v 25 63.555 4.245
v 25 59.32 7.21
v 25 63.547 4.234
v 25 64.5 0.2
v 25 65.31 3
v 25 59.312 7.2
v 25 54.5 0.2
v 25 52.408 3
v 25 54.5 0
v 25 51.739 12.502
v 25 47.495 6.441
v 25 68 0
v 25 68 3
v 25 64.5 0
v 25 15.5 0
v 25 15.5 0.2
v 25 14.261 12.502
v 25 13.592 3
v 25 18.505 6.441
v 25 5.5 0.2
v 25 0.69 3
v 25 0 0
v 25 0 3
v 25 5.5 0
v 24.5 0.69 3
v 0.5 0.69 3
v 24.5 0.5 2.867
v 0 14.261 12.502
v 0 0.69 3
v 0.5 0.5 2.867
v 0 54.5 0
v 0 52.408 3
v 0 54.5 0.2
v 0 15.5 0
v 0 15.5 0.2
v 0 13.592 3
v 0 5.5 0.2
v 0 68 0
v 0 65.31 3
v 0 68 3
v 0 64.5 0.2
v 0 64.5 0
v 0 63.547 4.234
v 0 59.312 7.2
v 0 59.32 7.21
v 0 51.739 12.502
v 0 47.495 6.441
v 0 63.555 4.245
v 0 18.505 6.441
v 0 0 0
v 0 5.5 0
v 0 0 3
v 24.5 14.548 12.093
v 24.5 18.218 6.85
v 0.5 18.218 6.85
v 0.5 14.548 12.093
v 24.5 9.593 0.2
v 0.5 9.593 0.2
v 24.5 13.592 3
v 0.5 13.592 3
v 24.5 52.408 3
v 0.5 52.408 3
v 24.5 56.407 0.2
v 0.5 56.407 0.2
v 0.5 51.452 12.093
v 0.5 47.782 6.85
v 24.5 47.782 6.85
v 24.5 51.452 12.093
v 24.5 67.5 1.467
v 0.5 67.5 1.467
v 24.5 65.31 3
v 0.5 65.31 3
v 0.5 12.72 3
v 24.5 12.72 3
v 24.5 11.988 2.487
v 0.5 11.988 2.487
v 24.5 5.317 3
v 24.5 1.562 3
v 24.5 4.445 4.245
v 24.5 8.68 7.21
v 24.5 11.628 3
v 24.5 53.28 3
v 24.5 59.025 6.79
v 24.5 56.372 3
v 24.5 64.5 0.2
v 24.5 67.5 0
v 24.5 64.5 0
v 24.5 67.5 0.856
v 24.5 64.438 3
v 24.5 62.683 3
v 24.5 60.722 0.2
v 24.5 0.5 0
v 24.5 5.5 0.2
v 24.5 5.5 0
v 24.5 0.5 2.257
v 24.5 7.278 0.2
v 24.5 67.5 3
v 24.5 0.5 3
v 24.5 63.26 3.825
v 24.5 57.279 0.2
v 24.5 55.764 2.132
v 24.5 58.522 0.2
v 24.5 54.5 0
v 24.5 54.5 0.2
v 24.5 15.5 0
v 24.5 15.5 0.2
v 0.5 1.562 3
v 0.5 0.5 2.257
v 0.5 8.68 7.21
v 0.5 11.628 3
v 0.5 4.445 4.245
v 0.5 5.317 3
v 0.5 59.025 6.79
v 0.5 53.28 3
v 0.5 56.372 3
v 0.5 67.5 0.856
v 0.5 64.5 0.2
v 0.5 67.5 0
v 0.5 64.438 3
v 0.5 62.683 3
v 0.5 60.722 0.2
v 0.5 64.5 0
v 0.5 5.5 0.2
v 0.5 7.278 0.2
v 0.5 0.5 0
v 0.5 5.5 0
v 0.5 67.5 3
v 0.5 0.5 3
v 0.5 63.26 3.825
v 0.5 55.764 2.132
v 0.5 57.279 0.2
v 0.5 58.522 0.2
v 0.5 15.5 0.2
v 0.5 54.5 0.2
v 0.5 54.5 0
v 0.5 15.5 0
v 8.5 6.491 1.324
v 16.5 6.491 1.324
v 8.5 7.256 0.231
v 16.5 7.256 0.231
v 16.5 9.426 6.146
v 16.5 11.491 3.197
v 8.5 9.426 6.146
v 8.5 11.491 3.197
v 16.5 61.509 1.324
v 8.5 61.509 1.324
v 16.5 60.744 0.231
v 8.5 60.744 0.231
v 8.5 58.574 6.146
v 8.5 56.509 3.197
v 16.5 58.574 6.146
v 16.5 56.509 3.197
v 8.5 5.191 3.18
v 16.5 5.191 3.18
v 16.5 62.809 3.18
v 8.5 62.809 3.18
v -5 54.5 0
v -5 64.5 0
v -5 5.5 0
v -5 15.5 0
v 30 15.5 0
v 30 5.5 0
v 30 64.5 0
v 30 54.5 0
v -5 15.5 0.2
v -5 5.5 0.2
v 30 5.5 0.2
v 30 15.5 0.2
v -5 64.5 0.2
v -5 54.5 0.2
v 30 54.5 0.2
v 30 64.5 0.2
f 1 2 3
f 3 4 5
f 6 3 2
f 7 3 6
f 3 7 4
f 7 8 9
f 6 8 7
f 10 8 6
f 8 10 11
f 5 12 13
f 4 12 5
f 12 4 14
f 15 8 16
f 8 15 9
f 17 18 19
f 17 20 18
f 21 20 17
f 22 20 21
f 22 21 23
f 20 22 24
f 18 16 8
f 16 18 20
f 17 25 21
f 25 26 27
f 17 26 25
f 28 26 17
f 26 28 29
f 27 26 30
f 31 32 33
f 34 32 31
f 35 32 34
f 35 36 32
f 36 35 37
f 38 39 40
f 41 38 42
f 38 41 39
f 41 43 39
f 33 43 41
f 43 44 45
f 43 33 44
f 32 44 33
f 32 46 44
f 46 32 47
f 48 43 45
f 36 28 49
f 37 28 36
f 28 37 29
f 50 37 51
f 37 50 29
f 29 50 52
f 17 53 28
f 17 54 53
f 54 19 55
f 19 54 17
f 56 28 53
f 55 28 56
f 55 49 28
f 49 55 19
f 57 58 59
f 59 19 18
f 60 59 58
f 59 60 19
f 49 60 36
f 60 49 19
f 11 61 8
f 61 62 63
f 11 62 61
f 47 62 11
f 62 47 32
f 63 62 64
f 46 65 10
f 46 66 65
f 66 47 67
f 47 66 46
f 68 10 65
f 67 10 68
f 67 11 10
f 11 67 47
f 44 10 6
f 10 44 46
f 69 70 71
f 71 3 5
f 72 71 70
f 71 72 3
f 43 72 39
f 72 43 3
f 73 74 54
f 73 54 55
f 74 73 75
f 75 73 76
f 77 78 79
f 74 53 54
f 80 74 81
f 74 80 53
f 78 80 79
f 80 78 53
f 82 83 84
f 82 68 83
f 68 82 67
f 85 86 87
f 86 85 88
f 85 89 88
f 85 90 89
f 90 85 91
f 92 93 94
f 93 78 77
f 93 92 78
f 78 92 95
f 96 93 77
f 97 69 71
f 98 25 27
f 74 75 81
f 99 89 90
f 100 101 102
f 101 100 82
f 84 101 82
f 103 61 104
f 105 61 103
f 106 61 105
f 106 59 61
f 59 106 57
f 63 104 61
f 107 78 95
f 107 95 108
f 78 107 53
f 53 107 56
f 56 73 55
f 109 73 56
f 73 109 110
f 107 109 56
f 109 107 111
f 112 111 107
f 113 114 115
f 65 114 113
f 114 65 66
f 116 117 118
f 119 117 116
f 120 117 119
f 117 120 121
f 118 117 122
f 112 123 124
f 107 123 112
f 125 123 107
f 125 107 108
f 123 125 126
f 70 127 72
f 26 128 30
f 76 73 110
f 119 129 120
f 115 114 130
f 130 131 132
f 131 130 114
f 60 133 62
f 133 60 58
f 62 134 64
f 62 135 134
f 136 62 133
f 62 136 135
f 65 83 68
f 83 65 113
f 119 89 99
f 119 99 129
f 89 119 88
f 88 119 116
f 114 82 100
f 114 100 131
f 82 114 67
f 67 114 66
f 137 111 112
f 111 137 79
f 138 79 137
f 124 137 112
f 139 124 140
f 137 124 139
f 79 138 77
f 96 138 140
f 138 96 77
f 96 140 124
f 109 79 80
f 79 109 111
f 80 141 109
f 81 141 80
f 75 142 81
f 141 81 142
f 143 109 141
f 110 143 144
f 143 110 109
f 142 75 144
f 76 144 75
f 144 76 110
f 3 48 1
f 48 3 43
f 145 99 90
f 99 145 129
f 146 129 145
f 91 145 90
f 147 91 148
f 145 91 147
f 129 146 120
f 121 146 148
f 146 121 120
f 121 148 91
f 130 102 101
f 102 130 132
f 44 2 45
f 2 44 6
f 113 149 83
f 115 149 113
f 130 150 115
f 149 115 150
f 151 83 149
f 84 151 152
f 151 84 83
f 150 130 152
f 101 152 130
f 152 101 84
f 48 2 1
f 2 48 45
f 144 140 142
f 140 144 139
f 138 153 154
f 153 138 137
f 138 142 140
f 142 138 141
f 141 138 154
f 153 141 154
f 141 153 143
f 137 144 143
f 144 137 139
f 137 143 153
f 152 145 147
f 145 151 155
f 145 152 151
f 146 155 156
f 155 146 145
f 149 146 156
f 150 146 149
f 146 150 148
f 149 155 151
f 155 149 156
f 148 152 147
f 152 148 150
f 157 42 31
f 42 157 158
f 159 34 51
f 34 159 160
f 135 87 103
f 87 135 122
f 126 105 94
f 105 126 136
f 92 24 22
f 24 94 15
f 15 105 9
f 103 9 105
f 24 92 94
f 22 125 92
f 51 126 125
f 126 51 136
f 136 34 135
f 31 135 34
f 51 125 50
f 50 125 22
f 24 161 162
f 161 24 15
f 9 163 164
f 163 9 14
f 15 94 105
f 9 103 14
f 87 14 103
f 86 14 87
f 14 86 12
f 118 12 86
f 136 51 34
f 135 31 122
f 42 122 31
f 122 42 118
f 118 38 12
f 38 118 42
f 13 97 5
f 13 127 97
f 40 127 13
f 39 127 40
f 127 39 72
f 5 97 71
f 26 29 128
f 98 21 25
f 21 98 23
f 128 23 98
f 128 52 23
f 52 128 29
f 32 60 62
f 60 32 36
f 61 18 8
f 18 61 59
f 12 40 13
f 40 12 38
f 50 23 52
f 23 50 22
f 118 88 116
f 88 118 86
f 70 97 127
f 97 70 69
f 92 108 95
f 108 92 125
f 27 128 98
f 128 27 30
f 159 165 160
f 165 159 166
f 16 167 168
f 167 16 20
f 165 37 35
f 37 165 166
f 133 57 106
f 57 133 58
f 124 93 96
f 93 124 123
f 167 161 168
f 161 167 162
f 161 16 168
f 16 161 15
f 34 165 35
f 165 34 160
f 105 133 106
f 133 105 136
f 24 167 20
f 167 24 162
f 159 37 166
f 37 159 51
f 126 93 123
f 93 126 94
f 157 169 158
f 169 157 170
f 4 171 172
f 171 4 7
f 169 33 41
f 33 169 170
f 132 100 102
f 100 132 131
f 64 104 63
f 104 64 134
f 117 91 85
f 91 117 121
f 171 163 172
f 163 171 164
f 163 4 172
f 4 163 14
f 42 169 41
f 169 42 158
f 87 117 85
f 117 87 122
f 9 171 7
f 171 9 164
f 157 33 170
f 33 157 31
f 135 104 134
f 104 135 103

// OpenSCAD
/* Diffuser Lense For A Particular Project (OpenSCAD) */
tol = 2;

/* Camera Chamber */
camchamberw = 27 - tol;
camchamberh = 70 - tol;

/* LED PCB */
holedia = 16 + 2;
thickness=3;

/* Enclosure hole */
enclosurew = 19;

/* Shroud */
shroud_mount_inset = 2;
shroud_mount_height = -2;
shroud_thickness = 1;
shroud_Length = 20;

/* SMD LED */
ledh = 2.76-1.59;
ledw = 4;
ledd = 1.6;

/* SMD LED INSET */
led_mount_inset = 9.5;
led_mount_angle = 180-55;
led_mount_tol=2;
led_mount_thickness=1;
led_mount_height = 4;

module led_mount(rotation, w, d, h)
{
  rotate([rotation,0,0])
    union()
    {
      translate([camchamberw/2 - w/2, -d/2, -h])
        cube([w,d,h+4]);
    }
}


module led_shroud(rotation, w, d, h)
{
  rotate([rotation,0,0])
    union()
    {
      translate([camchamberw/2 - w/2, -d/2, -h])
        cube([w,d,h+4]);
    }
}

/* Grippers*/
translate([-5,led_mount_inset-4,0])
  cube([camchamberw+10,10, 0.2]);
translate([-5,camchamberh-(led_mount_inset+4),0])
  cube([camchamberw+10,10, 0.2]);

intersection()
{
  union()
  {
    linear_extrude(height = thickness) {
       difference() 
      {
         offset(r = 0) 
         {
          square(size = [camchamberw,camchamberh], center = false);
         }
         offset(r = -0.5) 
         {
          square(size = [camchamberw,camchamberh], center = false);
         }
       }
    }
    
    %difference()
    {
      translate([camchamberw/2,camchamberh/2, 0])
        cylinder(thickness,d=holedia+7);
      translate([camchamberw/2,camchamberh/2,-thickness/2])
        cylinder(thickness*2,d=holedia);
    }
   
    // Shroud
    difference()
    {
      union()
      { // Main Body
        translate([0,shroud_mount_height+shroud_mount_inset,shroud_mount_height])
          led_shroud(led_mount_angle,camchamberw,ledd*4+shroud_thickness,shroud_Length);
        translate([0,camchamberh-shroud_mount_inset,shroud_mount_height])
          led_shroud(-led_mount_angle,camchamberw,ledd*4+shroud_thickness,shroud_Length);
      }

      translate([0,shroud_mount_height+shroud_mount_inset,shroud_mount_height])
        led_mount(led_mount_angle,camchamberw-shroud_thickness,ledd*4,shroud_Length+1);
      translate([0,camchamberh-shroud_mount_inset,shroud_mount_height])
        led_mount(-led_mount_angle,camchamberw-shroud_thickness,ledd*4,shroud_Length+1);
      
      //translate([0,0,-1])
      //  cube([camchamberw,camchamberh, thickness]);
     }
    
    // led Holder
    difference()
    {
      union()
      { // Main Body
        // LED Holes
        translate([0,led_mount_inset,led_mount_height])
          led_mount(led_mount_angle,camchamberw,ledd*2+led_mount_tol+led_mount_thickness,ledh);
        translate([0,camchamberh-led_mount_inset,led_mount_height])
          led_mount(-led_mount_angle,camchamberw,ledd*2+led_mount_tol+led_mount_thickness,ledh);
      }

      // LED Holes
      translate([0,led_mount_inset,led_mount_height])
        led_mount(led_mount_angle,ledw+led_mount_tol*2,ledd+led_mount_tol,ledh+2);
      translate([0,camchamberh-led_mount_inset,led_mount_height])
        led_mount(-led_mount_angle,ledw+led_mount_tol*2,ledd+led_mount_tol,ledh+2);
     }
  }

  /* Remove bottom */
  cube([camchamberw,camchamberh, 1000]);
}
